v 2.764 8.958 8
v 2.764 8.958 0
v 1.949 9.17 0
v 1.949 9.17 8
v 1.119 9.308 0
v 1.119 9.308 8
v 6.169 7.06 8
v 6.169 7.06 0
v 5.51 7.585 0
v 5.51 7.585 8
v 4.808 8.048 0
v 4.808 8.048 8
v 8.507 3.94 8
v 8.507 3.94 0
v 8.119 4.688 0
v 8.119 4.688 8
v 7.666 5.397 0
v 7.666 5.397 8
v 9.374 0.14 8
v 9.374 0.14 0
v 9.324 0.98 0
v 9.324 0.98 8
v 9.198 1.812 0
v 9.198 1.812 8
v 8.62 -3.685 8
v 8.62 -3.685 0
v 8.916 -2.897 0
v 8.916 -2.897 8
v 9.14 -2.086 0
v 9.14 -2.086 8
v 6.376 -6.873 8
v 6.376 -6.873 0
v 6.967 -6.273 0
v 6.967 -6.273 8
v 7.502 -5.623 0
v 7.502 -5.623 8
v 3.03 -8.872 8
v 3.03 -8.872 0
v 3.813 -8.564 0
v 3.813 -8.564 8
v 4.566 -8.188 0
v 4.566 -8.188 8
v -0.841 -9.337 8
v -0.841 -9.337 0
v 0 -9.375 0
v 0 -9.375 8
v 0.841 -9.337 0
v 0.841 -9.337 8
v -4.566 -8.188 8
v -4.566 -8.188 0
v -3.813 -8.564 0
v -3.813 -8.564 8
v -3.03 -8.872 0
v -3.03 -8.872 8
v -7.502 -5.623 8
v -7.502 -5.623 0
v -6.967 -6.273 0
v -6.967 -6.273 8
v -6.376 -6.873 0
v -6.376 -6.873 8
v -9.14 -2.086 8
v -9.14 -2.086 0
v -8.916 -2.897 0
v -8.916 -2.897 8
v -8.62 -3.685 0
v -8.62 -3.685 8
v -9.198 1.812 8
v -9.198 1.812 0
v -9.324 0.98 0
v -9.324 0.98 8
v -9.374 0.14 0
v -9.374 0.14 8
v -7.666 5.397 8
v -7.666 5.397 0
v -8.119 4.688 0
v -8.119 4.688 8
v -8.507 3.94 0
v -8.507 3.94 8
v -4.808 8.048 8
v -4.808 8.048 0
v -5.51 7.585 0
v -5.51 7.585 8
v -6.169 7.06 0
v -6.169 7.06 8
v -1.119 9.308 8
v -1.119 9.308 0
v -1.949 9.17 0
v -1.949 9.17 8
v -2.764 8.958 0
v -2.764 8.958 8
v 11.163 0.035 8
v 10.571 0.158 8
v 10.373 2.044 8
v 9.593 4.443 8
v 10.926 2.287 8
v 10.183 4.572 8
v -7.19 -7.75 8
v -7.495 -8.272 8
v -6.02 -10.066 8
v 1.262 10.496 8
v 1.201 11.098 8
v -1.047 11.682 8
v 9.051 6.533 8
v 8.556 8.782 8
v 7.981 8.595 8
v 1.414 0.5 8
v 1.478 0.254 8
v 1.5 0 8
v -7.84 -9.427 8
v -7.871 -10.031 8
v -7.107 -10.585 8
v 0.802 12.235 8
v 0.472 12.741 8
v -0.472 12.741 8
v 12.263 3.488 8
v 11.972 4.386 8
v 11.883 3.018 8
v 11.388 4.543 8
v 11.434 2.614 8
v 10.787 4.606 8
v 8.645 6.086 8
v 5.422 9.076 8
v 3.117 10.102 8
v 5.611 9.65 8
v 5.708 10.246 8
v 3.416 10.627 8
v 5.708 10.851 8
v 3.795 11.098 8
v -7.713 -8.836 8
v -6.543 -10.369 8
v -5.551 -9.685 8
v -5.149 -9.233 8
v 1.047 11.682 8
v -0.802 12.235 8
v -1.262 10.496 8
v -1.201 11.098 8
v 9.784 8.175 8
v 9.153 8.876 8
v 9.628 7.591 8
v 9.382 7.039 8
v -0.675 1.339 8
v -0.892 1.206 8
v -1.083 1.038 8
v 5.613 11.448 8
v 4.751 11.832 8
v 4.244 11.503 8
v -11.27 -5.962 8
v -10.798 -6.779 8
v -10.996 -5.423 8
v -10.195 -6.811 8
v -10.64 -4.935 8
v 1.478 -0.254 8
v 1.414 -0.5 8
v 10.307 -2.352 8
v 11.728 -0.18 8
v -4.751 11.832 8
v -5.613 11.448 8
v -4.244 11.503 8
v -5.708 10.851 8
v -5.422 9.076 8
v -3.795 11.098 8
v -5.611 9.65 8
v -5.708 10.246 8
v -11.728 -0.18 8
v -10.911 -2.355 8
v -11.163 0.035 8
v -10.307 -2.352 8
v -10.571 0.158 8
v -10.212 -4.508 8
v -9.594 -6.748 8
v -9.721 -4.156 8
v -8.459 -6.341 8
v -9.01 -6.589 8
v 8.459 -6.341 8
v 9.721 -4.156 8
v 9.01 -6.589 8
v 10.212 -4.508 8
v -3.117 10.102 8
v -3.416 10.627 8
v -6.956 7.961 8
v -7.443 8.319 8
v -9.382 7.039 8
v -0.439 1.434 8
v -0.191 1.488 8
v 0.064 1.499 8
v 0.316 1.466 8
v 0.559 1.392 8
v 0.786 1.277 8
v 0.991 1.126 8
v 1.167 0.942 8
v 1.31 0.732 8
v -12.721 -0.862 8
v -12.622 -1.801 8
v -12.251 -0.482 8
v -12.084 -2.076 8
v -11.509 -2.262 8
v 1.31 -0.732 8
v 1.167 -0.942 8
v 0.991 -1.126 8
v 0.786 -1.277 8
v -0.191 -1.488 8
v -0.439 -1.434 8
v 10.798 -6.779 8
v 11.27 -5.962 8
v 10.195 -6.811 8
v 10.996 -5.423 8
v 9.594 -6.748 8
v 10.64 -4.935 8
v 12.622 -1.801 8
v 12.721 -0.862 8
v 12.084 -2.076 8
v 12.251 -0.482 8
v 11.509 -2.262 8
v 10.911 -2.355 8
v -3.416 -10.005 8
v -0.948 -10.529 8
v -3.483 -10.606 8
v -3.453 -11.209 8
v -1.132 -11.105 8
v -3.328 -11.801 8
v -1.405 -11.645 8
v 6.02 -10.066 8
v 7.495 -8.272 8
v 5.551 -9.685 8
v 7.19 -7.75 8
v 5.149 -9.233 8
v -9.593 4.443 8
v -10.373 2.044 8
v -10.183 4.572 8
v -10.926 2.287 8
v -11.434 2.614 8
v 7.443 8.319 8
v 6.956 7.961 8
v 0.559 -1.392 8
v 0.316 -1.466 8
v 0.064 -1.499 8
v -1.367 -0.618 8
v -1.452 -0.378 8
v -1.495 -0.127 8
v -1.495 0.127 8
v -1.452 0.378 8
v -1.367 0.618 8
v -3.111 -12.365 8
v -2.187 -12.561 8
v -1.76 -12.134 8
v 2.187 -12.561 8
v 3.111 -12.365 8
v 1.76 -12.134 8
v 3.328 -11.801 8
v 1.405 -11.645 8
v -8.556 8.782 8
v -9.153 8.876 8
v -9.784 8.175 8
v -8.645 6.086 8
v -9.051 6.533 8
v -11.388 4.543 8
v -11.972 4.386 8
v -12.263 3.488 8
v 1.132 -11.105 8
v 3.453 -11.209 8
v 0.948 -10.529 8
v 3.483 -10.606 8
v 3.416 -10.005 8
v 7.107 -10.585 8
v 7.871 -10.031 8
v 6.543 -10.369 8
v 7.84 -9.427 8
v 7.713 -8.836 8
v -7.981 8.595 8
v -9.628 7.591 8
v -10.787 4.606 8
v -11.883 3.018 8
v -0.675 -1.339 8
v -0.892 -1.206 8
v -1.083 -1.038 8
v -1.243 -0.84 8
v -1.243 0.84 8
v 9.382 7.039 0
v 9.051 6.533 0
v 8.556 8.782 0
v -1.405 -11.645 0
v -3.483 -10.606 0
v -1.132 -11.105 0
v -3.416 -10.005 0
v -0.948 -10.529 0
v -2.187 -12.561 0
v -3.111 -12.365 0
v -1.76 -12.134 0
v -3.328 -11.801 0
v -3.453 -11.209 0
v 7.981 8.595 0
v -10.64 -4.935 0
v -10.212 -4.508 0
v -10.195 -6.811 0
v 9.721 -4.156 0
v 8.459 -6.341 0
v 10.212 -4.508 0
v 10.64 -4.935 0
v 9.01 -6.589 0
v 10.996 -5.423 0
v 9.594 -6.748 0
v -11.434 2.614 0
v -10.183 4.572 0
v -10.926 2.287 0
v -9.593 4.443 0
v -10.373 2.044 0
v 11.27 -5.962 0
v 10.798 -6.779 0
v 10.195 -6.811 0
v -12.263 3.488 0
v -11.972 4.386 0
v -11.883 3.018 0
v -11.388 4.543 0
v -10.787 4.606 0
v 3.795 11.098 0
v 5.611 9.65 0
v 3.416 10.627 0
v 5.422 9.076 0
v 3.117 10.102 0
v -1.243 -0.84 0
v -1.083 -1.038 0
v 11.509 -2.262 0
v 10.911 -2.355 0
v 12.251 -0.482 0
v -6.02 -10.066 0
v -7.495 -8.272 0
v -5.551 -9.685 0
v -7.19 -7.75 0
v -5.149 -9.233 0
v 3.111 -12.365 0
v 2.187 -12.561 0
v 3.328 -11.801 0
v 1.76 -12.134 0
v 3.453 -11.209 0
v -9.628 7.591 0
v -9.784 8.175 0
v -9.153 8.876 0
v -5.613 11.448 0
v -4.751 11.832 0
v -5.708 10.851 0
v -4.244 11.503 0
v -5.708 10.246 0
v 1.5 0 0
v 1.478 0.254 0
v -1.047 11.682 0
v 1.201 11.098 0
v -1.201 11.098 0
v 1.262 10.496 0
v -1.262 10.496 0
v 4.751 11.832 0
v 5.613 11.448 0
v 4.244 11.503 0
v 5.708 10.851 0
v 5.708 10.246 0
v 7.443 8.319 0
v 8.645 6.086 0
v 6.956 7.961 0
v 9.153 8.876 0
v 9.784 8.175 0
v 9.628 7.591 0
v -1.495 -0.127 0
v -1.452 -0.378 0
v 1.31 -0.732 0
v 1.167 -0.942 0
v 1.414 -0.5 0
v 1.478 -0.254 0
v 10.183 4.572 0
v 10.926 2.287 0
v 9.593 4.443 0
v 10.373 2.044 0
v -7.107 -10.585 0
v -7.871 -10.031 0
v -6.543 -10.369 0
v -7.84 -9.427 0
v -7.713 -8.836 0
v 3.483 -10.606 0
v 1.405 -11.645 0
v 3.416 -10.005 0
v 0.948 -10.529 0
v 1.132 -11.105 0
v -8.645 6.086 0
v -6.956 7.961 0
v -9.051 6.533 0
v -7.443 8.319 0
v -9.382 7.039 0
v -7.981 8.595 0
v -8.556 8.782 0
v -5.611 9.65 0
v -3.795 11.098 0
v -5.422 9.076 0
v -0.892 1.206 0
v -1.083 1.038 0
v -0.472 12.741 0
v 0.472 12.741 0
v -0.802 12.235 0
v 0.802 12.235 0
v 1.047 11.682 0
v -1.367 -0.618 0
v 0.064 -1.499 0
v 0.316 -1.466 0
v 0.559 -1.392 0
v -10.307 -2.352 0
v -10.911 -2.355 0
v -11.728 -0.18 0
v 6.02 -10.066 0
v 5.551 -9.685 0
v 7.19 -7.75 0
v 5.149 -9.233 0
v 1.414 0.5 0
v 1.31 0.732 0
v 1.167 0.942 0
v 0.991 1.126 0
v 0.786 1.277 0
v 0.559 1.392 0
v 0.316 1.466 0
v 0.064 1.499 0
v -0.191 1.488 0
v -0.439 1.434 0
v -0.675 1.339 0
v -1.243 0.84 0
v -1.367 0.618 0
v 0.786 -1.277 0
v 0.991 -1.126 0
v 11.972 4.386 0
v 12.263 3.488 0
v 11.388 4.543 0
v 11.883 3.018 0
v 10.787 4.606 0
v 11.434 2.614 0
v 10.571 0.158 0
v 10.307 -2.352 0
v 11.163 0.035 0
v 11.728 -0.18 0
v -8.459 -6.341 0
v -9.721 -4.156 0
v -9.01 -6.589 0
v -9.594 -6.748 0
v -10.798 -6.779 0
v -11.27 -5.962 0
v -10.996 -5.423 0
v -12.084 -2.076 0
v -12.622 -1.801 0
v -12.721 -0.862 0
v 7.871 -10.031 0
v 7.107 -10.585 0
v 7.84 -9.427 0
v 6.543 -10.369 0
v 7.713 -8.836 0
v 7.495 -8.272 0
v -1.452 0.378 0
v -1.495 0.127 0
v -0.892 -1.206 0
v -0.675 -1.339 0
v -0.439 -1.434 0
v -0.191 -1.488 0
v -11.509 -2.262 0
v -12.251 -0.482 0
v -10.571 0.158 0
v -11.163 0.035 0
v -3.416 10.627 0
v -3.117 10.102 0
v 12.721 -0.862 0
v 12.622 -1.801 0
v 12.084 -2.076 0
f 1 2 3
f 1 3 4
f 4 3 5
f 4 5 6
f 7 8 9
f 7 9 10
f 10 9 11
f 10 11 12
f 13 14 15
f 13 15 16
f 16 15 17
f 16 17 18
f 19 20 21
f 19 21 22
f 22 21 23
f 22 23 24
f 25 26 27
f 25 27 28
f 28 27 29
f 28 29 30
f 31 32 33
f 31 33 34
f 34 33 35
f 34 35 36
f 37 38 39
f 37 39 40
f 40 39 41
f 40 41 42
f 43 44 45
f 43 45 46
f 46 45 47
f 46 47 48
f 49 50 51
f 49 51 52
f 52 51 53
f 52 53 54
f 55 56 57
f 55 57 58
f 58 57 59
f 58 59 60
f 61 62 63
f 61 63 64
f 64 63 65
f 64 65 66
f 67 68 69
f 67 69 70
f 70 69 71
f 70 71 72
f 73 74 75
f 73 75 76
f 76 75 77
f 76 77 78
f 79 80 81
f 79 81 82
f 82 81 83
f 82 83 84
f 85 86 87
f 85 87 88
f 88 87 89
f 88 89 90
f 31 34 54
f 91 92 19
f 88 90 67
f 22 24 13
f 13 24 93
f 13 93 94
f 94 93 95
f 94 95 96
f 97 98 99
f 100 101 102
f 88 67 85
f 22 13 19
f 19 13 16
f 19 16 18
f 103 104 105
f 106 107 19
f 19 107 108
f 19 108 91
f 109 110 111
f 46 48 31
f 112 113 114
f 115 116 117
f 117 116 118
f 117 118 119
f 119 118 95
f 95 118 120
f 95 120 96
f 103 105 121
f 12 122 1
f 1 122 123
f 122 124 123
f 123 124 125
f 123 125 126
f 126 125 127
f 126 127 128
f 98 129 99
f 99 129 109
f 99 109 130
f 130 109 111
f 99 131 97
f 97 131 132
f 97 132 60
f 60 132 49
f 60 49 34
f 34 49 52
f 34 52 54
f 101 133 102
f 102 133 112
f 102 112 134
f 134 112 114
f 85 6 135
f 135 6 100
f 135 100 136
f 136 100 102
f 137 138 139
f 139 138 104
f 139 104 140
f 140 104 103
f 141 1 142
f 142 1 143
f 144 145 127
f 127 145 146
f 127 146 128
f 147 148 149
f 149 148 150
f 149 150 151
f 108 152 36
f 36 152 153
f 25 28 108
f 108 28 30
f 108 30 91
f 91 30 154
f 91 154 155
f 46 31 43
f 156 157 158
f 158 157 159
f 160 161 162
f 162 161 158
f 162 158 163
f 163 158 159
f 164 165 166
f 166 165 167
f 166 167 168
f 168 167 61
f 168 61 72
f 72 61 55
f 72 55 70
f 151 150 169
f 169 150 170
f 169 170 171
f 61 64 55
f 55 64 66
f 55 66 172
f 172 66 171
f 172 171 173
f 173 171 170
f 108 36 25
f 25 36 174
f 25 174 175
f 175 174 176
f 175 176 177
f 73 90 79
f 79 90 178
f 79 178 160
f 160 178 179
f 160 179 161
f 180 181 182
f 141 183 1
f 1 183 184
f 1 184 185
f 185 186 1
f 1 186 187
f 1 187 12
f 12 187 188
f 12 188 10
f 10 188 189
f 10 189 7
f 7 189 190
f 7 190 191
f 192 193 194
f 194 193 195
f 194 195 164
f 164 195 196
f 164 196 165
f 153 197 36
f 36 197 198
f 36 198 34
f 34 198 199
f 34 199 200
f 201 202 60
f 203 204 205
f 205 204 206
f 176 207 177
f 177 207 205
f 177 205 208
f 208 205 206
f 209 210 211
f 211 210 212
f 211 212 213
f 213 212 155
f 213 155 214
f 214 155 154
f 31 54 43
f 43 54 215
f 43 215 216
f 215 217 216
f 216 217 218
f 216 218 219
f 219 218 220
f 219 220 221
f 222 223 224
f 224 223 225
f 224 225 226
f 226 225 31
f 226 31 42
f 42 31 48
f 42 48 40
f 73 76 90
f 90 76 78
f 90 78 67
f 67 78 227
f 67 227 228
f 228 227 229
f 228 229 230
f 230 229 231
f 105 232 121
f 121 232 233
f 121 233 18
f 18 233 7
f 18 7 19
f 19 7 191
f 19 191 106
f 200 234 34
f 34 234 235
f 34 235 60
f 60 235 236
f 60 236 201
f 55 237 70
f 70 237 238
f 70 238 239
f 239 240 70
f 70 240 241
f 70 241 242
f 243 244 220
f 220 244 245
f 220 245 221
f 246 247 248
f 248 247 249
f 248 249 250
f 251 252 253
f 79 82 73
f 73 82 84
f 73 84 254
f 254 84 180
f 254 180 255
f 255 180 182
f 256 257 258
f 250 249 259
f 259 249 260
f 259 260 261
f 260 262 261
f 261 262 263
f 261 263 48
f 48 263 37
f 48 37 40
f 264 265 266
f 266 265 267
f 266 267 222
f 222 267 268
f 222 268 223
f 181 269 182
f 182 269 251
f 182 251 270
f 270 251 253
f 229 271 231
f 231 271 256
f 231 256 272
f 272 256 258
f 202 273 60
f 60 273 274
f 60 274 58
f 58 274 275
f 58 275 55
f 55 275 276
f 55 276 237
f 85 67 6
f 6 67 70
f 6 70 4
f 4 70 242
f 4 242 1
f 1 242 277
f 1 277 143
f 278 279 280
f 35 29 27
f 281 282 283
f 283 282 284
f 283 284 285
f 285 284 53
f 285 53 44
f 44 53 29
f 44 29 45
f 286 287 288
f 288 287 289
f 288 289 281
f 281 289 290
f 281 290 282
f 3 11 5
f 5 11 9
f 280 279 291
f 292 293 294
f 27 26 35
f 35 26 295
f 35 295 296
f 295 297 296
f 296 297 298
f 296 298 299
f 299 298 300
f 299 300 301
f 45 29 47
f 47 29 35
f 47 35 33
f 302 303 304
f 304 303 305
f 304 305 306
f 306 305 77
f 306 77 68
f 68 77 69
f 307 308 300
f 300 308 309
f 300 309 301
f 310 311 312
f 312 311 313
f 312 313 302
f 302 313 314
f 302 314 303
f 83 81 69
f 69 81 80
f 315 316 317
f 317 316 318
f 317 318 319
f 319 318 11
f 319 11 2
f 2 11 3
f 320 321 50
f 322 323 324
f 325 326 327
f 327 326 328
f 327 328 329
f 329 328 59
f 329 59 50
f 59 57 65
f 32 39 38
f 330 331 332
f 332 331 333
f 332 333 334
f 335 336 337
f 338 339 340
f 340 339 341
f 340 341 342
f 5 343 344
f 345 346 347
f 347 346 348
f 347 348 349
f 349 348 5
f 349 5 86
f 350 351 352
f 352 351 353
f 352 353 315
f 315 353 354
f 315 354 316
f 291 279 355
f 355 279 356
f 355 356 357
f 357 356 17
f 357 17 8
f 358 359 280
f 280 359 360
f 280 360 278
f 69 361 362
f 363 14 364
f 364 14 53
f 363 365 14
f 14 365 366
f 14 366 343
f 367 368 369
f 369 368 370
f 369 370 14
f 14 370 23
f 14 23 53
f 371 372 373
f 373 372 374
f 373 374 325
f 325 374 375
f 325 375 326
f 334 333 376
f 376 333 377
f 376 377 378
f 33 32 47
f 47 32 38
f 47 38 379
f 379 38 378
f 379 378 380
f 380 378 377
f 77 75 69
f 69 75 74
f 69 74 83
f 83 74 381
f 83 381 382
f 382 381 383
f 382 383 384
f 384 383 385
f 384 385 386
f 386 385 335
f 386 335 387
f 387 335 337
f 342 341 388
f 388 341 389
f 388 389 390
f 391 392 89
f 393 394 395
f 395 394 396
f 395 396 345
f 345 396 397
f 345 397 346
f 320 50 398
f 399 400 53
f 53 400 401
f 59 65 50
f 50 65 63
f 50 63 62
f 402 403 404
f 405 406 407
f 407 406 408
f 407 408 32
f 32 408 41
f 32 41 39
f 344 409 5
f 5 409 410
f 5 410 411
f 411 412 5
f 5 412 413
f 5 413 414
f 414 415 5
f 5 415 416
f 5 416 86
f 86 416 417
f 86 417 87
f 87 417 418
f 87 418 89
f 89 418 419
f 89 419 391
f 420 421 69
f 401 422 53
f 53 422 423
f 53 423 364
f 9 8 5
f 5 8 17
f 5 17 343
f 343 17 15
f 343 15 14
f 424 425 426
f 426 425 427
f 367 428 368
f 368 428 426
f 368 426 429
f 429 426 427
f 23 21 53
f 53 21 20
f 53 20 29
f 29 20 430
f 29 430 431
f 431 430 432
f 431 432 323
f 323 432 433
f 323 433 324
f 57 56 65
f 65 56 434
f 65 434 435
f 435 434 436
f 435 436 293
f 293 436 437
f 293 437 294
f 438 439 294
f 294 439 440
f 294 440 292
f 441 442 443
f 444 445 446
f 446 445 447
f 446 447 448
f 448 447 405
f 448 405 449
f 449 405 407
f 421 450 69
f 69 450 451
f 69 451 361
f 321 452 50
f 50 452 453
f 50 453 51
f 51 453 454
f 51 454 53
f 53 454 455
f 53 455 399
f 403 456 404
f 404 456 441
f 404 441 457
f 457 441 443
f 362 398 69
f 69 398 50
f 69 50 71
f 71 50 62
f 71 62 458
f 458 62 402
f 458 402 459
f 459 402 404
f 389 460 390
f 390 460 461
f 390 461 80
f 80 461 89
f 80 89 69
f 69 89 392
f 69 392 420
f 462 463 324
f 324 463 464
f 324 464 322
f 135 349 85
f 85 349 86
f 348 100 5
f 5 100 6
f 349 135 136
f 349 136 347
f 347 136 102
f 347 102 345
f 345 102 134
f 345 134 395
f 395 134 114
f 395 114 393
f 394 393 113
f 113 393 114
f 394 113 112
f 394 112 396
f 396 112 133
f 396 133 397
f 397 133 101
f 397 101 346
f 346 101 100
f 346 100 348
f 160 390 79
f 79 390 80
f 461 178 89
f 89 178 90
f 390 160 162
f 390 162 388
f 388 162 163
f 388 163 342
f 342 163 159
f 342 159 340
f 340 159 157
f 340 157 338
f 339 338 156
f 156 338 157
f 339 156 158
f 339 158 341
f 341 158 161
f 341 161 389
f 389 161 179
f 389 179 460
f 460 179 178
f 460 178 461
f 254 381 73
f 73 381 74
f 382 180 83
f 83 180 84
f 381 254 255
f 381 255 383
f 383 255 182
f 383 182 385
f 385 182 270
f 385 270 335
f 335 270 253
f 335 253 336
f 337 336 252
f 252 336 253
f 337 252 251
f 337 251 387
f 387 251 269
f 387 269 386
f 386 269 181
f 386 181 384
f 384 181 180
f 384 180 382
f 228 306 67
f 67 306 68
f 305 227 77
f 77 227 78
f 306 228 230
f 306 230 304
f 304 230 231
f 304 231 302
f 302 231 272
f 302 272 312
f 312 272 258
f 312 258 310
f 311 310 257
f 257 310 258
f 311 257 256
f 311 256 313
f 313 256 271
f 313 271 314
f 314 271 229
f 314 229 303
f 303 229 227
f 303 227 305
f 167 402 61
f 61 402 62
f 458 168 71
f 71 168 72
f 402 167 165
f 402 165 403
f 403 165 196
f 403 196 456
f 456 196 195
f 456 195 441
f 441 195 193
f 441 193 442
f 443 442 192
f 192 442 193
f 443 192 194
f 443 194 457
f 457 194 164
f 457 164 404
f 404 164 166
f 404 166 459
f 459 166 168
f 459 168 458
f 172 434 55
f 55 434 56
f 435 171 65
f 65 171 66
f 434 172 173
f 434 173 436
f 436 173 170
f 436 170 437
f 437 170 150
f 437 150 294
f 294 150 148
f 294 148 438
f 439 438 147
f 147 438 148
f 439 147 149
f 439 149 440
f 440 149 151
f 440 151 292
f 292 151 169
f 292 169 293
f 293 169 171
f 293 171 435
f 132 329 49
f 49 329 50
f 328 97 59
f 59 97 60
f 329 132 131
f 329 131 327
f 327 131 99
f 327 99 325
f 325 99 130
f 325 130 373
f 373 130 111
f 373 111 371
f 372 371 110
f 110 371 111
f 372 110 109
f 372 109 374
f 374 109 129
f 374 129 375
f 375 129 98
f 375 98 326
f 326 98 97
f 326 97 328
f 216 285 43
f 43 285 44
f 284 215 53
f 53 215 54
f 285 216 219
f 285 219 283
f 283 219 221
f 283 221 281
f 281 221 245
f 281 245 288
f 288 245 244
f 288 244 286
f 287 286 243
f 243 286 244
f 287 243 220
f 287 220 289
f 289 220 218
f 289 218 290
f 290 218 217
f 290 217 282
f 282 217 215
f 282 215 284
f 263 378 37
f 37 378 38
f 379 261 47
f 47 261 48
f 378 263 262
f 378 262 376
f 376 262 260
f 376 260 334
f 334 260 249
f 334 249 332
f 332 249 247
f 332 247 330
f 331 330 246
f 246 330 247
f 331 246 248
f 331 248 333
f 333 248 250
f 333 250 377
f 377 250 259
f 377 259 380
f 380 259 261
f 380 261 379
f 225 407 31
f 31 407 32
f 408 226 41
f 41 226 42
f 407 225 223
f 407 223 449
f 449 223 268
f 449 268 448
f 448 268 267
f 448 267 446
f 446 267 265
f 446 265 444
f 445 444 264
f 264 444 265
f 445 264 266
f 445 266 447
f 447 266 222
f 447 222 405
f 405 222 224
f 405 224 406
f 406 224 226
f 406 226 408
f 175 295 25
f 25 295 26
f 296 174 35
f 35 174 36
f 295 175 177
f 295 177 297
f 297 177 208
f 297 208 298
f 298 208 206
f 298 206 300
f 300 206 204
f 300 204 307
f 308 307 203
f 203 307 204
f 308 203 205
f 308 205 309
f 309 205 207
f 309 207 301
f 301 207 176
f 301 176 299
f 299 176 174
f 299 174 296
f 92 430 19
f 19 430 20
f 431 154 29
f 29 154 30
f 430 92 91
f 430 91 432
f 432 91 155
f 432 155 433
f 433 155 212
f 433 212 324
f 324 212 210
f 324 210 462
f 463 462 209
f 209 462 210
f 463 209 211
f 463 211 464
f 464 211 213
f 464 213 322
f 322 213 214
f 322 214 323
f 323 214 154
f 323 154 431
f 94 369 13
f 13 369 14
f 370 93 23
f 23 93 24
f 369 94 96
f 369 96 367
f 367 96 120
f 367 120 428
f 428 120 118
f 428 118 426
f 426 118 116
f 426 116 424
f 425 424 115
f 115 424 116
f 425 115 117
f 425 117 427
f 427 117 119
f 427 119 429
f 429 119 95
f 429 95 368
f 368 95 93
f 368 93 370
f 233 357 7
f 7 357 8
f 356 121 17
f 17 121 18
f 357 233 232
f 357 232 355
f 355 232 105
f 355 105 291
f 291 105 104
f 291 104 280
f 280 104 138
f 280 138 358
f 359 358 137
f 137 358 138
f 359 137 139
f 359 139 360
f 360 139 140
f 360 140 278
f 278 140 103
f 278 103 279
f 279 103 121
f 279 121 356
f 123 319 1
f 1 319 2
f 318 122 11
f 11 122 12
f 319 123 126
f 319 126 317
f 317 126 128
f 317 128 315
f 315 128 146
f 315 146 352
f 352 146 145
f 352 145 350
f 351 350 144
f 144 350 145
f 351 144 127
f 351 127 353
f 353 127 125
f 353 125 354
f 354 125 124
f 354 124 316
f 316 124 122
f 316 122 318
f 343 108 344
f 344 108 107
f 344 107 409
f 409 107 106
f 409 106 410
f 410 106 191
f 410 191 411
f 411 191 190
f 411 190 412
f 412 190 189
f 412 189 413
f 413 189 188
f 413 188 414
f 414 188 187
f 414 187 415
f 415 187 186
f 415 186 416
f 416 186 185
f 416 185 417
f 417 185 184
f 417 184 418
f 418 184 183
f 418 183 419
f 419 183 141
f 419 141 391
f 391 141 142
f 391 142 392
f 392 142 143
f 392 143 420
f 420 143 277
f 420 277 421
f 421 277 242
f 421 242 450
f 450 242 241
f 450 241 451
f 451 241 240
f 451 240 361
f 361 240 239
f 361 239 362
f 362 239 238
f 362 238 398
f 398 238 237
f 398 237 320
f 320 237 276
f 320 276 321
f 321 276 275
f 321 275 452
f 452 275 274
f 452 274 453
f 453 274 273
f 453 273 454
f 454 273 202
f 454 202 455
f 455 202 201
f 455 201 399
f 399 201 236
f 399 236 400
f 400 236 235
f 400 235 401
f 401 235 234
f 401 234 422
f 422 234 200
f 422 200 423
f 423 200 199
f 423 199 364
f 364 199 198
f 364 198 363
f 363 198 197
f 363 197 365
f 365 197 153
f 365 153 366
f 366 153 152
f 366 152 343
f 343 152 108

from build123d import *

# Parameters (mm, degrees)
SKETCH2_R           = 9.375
BOSS_EXTRUDE1_DEPTH = 8
BOSS_EXTRUDE2_DEPTH = 8
CIRPATTERN1_COUNT   = 15
SKETCH4_R           = 1.5
CUT_EXTRUDE1_DEPTH  = 8


with BuildPart() as part:
    # Sketch2 → Boss-Extrude1 (new body)
    with BuildSketch(Plane.XY):
        Circle(SKETCH2_R)
    extrude(amount=BOSS_EXTRUDE1_DEPTH)

    # Sketch3 → Boss-Extrude2 (add)
    with BuildSketch(Plane.XY.offset(8)):
        with BuildLine():
            Line((0, 0), (1.26165998, 10.496446927))
            ThreePointArc((1.26165998, 10.496446927), (1.046763133, 11.682170305), (0.471921711, 12.741263277))
            Line((0.471921711, 12.741263277), (-0.471921711, 12.741263277))
            ThreePointArc((-0.471921711, 12.741263277), (-1.046763133, 11.682170305), (-1.26165998, 10.496446927))
            Line((-1.26165998, 10.496446927), (0, 0))
        make_face()
    boss_extrude2 = extrude(amount=-BOSS_EXTRUDE2_DEPTH)

    # CirPattern1: Boss-Extrude2 ×15 about axis
    cirpattern1_axis = Axis((0, 0, 0), (0, 0, 1))
    for i in range(1, CIRPATTERN1_COUNT):
        add(boss_extrude2.rotate(cirpattern1_axis, i * 360 / CIRPATTERN1_COUNT))

    # Sketch4 → Cut-Extrude1 (cut)
    with BuildSketch(Plane.XY.offset(8)):
        Circle(SKETCH4_R)
    extrude(amount=-CUT_EXTRUDE1_DEPTH, mode=Mode.SUBTRACT)


solid = part.part
